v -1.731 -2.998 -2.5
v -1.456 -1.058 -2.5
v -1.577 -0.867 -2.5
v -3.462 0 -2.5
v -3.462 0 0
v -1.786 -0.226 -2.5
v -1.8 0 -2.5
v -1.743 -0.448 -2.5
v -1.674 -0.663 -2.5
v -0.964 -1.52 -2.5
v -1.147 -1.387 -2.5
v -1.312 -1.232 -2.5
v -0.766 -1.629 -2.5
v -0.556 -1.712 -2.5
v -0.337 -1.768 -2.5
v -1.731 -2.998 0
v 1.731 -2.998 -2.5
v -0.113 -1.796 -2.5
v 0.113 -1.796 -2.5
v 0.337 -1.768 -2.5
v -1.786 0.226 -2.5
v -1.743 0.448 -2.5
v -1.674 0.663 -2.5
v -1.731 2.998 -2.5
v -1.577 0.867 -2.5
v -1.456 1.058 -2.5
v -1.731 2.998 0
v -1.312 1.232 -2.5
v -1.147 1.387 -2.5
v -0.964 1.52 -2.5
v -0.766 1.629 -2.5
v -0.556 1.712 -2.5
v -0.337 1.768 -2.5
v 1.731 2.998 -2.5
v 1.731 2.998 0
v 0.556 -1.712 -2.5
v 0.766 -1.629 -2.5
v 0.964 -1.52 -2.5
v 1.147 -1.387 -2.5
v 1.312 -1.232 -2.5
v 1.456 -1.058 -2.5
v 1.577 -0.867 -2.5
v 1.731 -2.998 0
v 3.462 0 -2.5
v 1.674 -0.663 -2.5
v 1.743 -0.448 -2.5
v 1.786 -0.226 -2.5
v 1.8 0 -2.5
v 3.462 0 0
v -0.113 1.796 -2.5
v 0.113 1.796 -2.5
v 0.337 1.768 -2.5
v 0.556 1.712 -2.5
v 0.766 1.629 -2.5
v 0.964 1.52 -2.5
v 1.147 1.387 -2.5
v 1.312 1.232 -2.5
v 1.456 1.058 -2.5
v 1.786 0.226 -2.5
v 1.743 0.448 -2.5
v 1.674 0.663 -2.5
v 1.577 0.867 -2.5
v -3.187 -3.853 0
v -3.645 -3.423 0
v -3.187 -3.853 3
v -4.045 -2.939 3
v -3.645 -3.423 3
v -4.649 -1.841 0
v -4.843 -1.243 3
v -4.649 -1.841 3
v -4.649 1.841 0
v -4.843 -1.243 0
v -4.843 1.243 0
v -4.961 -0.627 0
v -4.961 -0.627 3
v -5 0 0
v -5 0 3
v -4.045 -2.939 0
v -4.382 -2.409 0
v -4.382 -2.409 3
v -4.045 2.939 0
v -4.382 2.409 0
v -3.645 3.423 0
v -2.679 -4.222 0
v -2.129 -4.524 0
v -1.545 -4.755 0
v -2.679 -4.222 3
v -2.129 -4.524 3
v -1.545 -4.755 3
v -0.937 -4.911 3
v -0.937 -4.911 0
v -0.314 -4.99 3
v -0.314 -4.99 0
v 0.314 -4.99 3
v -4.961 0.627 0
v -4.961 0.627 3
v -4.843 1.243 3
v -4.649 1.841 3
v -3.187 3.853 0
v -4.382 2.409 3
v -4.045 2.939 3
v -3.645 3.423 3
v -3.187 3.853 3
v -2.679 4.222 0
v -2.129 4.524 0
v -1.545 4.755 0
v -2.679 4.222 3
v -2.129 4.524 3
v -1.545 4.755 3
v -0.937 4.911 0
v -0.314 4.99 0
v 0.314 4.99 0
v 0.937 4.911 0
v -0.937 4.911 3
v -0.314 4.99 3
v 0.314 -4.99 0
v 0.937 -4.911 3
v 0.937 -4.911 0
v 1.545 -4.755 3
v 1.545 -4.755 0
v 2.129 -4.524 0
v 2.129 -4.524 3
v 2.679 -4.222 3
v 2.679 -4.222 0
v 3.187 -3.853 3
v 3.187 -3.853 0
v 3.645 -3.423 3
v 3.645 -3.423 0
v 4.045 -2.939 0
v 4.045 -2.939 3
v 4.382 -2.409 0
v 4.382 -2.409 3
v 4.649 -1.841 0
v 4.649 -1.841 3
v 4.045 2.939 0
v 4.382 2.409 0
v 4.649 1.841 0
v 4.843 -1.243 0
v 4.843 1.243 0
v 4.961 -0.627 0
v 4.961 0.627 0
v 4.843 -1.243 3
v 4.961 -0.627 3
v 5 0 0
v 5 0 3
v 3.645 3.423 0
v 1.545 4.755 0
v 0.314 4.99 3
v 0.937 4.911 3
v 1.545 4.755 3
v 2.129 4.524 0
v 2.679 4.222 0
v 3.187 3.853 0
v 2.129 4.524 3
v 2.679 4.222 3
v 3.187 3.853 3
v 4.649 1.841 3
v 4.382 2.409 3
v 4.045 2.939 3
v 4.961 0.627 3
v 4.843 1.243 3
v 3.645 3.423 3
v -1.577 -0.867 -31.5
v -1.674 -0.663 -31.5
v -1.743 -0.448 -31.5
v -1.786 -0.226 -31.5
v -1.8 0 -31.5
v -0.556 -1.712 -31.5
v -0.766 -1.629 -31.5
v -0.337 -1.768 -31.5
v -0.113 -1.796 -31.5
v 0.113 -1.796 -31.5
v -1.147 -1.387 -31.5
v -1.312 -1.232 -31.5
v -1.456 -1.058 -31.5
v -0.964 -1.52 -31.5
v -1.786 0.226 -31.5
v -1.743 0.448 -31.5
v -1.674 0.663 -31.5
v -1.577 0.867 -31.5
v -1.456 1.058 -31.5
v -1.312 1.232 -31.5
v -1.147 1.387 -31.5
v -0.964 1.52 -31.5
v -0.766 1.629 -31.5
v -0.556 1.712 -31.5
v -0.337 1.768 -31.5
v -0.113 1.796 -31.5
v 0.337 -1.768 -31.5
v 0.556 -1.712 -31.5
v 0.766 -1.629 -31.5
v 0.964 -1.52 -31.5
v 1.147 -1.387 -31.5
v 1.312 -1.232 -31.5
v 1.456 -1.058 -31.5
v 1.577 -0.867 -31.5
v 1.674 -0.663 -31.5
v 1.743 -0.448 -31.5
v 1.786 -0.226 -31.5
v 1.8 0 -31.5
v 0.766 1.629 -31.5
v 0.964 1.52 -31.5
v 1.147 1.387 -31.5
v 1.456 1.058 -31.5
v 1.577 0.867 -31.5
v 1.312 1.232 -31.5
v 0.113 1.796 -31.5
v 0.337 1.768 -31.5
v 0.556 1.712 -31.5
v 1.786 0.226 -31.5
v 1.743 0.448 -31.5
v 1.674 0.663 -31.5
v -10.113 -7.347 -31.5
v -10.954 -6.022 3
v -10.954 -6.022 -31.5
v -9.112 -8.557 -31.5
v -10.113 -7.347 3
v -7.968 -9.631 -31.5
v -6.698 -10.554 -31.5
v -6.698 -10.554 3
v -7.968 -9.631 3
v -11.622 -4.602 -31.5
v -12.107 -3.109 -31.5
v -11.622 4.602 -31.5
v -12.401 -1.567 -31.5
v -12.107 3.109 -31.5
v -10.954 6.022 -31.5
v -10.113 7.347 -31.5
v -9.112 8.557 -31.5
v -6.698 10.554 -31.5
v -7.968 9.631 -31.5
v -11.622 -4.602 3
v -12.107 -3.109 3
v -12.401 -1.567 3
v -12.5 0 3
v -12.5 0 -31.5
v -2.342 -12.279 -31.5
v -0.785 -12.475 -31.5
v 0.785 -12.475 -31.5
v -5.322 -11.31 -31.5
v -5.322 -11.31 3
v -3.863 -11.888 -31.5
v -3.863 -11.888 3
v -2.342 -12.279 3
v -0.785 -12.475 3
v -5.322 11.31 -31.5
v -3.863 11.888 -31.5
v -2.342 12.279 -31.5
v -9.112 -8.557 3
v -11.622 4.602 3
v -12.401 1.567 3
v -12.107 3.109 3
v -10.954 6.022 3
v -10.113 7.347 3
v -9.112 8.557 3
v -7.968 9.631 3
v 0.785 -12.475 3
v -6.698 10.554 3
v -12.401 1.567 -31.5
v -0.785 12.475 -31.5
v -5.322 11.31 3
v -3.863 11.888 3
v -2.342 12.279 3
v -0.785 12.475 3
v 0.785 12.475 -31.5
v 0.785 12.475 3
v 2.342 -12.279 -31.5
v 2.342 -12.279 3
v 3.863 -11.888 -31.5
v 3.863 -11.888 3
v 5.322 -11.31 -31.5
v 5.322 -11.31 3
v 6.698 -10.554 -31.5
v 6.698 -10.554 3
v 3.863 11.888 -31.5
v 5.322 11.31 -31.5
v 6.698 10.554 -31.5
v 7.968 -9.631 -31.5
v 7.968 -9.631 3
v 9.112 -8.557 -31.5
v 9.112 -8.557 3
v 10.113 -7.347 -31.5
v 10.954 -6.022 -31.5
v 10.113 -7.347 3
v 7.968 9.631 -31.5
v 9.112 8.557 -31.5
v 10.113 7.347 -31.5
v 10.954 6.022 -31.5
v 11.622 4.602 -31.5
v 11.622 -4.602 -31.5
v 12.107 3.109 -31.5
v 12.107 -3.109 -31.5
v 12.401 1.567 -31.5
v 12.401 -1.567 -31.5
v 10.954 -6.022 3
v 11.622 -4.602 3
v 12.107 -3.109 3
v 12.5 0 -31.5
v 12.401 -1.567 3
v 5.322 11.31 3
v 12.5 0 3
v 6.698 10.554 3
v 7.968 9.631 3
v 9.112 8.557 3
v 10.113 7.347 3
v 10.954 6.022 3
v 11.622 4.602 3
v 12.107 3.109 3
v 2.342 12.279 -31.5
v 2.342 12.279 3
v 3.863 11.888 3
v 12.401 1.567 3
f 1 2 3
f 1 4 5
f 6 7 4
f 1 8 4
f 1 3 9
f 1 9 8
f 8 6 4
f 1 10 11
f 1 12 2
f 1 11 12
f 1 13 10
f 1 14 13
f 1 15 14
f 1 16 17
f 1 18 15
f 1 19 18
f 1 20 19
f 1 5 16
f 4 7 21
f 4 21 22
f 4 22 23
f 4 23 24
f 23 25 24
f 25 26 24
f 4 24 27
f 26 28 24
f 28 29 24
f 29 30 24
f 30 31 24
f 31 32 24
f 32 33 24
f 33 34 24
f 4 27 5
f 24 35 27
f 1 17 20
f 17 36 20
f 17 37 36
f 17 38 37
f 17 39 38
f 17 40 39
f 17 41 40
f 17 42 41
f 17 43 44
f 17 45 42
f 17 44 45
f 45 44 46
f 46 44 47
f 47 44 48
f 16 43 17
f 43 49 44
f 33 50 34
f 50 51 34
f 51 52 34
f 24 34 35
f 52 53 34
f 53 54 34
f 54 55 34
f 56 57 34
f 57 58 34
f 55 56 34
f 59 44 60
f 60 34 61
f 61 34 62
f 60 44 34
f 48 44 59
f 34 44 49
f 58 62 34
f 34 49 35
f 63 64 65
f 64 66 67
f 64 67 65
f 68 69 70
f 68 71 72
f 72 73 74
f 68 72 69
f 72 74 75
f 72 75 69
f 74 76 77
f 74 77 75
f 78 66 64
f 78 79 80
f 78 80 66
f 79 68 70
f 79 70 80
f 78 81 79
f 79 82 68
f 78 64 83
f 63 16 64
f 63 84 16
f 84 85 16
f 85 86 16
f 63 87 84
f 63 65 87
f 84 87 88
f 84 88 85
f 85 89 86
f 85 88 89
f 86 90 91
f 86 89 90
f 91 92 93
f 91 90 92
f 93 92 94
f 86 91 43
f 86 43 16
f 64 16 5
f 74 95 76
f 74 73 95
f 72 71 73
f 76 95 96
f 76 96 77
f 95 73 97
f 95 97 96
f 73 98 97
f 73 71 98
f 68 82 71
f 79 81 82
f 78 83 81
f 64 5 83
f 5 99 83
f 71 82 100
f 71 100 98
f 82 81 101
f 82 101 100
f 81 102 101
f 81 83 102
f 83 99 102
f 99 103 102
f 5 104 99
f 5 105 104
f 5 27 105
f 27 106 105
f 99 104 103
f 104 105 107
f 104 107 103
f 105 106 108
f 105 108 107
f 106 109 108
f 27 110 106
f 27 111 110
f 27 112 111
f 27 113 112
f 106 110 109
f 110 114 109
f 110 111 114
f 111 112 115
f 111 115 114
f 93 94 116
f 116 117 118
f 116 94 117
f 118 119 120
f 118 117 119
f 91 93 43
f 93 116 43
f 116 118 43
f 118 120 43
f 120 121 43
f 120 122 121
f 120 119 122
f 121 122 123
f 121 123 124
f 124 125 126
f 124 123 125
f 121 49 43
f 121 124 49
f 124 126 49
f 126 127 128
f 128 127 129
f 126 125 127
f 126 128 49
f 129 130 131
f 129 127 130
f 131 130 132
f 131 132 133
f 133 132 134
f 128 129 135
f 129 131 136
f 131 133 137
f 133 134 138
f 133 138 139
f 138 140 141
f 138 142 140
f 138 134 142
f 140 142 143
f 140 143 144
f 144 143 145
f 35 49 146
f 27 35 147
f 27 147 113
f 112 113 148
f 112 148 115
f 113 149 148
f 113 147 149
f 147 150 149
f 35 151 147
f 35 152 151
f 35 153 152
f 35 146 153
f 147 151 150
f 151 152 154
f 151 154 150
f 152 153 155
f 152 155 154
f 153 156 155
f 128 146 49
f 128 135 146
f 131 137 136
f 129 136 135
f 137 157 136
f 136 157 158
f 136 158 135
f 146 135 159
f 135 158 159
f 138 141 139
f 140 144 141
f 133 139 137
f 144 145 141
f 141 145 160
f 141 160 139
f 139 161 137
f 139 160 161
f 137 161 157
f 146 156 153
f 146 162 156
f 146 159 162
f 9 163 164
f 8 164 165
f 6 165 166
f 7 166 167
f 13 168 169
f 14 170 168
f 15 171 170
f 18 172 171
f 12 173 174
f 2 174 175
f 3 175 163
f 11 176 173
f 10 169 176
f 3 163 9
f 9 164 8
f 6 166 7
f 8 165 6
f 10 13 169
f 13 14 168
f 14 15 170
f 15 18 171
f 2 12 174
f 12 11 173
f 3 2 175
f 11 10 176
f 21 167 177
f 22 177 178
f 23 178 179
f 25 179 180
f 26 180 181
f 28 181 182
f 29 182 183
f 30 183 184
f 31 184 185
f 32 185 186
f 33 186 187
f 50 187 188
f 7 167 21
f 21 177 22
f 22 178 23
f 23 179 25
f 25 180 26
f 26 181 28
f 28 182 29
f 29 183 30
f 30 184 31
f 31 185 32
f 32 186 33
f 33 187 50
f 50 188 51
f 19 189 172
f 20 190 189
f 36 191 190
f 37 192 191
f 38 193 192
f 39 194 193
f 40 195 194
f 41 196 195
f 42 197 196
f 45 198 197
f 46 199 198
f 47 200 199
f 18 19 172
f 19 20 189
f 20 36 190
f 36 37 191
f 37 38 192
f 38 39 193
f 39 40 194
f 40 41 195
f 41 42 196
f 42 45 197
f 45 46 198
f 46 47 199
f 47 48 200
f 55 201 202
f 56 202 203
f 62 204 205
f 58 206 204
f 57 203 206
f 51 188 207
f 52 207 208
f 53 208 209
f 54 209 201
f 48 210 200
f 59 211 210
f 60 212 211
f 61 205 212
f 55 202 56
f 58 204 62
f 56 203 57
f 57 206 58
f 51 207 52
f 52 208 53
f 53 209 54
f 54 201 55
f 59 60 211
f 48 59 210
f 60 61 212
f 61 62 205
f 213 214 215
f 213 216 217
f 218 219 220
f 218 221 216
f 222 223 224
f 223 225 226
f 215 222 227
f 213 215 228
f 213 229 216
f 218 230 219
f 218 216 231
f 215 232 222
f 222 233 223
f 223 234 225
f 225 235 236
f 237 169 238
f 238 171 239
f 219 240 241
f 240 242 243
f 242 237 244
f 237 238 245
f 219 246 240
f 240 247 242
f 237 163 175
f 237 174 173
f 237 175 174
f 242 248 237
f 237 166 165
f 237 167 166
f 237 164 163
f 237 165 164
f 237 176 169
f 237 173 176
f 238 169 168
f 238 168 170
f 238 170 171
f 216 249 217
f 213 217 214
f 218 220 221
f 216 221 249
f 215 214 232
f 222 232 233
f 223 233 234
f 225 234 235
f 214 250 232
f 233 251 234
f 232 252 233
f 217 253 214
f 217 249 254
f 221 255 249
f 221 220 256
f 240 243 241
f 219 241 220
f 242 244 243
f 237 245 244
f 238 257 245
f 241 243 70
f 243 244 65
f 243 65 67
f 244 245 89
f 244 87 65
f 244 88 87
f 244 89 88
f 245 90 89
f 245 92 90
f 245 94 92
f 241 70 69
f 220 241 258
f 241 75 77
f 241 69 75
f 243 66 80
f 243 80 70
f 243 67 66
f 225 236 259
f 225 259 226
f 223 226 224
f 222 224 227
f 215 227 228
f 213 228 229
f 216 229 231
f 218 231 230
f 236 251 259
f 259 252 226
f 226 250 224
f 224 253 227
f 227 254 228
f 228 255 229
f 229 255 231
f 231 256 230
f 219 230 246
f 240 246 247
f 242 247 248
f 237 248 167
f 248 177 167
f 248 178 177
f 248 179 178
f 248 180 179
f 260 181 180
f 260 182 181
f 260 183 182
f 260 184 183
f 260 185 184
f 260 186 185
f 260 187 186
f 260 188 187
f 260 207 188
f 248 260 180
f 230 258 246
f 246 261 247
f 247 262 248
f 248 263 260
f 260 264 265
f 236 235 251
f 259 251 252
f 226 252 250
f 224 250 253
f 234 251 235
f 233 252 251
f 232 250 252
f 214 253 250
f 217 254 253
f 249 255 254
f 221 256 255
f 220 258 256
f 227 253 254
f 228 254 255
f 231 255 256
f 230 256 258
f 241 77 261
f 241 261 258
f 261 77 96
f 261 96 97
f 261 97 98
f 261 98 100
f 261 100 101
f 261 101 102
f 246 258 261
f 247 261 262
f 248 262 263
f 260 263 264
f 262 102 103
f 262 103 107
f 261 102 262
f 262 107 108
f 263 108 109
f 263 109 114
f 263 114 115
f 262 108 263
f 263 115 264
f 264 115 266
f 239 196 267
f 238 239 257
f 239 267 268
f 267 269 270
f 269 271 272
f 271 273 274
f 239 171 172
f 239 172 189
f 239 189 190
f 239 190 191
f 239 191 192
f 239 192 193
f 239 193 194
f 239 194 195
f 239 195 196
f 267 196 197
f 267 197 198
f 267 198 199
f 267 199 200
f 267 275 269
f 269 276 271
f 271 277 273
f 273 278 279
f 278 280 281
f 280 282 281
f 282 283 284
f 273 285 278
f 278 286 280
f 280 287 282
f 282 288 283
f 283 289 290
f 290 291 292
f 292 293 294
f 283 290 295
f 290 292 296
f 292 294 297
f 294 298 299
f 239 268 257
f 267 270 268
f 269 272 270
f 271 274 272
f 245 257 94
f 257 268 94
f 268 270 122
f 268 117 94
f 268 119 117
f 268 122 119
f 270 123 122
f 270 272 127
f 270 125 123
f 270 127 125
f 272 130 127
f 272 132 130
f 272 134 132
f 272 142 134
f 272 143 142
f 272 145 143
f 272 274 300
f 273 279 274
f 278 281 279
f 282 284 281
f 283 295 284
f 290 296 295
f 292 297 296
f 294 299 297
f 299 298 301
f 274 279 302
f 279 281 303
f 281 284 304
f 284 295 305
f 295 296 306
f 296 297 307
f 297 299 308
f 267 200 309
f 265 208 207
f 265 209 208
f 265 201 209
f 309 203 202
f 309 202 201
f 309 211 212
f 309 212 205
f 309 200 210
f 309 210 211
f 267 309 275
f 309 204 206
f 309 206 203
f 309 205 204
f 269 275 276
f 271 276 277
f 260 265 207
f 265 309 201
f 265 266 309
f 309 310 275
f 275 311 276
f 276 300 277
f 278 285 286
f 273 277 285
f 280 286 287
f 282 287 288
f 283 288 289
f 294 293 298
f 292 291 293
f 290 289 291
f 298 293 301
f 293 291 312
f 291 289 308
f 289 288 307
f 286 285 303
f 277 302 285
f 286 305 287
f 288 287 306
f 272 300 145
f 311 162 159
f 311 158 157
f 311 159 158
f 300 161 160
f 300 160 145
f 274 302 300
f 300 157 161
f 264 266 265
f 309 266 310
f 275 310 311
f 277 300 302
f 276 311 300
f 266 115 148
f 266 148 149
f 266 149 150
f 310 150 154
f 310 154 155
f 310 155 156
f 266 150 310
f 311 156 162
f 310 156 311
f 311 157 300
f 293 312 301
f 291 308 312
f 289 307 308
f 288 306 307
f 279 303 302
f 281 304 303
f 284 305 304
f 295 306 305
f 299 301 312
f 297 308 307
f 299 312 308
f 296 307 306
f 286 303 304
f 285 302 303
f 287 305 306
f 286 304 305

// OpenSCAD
$fn = 50;

difference() {
	union() {
		translate(v = [0, 0, -31.5]) {
			cylinder(h = 34.5, r = 12.5);
		}
	}
	union() {
		translate(v = [0, 0, 0]) {
			rotate(a = [0, 0, 0]) {
				difference() {
					union() {
						translate(v = [0, 0, -2.5]) {
							linear_extrude(height = 2.5) {
								polygon(points = [[3.4619999999999997, 0.0], [1.7310000000000003, 2.9981799479017264], [-1.7309999999999992, 2.9981799479017264], [-3.4619999999999997, 4.2397272186481365e-16], [-1.7310000000000014, -2.998179947901726], [1.7309999999999977, -2.9981799479017277]]);
							}
						}
					}
					union();
				}
			}
		}
		#cylinder(h = 3, r = 5.0);
		#translate(v = [0, 0, -100.0]) {
			cylinder(h = 200, r = 1.8);
		}
	}
}
